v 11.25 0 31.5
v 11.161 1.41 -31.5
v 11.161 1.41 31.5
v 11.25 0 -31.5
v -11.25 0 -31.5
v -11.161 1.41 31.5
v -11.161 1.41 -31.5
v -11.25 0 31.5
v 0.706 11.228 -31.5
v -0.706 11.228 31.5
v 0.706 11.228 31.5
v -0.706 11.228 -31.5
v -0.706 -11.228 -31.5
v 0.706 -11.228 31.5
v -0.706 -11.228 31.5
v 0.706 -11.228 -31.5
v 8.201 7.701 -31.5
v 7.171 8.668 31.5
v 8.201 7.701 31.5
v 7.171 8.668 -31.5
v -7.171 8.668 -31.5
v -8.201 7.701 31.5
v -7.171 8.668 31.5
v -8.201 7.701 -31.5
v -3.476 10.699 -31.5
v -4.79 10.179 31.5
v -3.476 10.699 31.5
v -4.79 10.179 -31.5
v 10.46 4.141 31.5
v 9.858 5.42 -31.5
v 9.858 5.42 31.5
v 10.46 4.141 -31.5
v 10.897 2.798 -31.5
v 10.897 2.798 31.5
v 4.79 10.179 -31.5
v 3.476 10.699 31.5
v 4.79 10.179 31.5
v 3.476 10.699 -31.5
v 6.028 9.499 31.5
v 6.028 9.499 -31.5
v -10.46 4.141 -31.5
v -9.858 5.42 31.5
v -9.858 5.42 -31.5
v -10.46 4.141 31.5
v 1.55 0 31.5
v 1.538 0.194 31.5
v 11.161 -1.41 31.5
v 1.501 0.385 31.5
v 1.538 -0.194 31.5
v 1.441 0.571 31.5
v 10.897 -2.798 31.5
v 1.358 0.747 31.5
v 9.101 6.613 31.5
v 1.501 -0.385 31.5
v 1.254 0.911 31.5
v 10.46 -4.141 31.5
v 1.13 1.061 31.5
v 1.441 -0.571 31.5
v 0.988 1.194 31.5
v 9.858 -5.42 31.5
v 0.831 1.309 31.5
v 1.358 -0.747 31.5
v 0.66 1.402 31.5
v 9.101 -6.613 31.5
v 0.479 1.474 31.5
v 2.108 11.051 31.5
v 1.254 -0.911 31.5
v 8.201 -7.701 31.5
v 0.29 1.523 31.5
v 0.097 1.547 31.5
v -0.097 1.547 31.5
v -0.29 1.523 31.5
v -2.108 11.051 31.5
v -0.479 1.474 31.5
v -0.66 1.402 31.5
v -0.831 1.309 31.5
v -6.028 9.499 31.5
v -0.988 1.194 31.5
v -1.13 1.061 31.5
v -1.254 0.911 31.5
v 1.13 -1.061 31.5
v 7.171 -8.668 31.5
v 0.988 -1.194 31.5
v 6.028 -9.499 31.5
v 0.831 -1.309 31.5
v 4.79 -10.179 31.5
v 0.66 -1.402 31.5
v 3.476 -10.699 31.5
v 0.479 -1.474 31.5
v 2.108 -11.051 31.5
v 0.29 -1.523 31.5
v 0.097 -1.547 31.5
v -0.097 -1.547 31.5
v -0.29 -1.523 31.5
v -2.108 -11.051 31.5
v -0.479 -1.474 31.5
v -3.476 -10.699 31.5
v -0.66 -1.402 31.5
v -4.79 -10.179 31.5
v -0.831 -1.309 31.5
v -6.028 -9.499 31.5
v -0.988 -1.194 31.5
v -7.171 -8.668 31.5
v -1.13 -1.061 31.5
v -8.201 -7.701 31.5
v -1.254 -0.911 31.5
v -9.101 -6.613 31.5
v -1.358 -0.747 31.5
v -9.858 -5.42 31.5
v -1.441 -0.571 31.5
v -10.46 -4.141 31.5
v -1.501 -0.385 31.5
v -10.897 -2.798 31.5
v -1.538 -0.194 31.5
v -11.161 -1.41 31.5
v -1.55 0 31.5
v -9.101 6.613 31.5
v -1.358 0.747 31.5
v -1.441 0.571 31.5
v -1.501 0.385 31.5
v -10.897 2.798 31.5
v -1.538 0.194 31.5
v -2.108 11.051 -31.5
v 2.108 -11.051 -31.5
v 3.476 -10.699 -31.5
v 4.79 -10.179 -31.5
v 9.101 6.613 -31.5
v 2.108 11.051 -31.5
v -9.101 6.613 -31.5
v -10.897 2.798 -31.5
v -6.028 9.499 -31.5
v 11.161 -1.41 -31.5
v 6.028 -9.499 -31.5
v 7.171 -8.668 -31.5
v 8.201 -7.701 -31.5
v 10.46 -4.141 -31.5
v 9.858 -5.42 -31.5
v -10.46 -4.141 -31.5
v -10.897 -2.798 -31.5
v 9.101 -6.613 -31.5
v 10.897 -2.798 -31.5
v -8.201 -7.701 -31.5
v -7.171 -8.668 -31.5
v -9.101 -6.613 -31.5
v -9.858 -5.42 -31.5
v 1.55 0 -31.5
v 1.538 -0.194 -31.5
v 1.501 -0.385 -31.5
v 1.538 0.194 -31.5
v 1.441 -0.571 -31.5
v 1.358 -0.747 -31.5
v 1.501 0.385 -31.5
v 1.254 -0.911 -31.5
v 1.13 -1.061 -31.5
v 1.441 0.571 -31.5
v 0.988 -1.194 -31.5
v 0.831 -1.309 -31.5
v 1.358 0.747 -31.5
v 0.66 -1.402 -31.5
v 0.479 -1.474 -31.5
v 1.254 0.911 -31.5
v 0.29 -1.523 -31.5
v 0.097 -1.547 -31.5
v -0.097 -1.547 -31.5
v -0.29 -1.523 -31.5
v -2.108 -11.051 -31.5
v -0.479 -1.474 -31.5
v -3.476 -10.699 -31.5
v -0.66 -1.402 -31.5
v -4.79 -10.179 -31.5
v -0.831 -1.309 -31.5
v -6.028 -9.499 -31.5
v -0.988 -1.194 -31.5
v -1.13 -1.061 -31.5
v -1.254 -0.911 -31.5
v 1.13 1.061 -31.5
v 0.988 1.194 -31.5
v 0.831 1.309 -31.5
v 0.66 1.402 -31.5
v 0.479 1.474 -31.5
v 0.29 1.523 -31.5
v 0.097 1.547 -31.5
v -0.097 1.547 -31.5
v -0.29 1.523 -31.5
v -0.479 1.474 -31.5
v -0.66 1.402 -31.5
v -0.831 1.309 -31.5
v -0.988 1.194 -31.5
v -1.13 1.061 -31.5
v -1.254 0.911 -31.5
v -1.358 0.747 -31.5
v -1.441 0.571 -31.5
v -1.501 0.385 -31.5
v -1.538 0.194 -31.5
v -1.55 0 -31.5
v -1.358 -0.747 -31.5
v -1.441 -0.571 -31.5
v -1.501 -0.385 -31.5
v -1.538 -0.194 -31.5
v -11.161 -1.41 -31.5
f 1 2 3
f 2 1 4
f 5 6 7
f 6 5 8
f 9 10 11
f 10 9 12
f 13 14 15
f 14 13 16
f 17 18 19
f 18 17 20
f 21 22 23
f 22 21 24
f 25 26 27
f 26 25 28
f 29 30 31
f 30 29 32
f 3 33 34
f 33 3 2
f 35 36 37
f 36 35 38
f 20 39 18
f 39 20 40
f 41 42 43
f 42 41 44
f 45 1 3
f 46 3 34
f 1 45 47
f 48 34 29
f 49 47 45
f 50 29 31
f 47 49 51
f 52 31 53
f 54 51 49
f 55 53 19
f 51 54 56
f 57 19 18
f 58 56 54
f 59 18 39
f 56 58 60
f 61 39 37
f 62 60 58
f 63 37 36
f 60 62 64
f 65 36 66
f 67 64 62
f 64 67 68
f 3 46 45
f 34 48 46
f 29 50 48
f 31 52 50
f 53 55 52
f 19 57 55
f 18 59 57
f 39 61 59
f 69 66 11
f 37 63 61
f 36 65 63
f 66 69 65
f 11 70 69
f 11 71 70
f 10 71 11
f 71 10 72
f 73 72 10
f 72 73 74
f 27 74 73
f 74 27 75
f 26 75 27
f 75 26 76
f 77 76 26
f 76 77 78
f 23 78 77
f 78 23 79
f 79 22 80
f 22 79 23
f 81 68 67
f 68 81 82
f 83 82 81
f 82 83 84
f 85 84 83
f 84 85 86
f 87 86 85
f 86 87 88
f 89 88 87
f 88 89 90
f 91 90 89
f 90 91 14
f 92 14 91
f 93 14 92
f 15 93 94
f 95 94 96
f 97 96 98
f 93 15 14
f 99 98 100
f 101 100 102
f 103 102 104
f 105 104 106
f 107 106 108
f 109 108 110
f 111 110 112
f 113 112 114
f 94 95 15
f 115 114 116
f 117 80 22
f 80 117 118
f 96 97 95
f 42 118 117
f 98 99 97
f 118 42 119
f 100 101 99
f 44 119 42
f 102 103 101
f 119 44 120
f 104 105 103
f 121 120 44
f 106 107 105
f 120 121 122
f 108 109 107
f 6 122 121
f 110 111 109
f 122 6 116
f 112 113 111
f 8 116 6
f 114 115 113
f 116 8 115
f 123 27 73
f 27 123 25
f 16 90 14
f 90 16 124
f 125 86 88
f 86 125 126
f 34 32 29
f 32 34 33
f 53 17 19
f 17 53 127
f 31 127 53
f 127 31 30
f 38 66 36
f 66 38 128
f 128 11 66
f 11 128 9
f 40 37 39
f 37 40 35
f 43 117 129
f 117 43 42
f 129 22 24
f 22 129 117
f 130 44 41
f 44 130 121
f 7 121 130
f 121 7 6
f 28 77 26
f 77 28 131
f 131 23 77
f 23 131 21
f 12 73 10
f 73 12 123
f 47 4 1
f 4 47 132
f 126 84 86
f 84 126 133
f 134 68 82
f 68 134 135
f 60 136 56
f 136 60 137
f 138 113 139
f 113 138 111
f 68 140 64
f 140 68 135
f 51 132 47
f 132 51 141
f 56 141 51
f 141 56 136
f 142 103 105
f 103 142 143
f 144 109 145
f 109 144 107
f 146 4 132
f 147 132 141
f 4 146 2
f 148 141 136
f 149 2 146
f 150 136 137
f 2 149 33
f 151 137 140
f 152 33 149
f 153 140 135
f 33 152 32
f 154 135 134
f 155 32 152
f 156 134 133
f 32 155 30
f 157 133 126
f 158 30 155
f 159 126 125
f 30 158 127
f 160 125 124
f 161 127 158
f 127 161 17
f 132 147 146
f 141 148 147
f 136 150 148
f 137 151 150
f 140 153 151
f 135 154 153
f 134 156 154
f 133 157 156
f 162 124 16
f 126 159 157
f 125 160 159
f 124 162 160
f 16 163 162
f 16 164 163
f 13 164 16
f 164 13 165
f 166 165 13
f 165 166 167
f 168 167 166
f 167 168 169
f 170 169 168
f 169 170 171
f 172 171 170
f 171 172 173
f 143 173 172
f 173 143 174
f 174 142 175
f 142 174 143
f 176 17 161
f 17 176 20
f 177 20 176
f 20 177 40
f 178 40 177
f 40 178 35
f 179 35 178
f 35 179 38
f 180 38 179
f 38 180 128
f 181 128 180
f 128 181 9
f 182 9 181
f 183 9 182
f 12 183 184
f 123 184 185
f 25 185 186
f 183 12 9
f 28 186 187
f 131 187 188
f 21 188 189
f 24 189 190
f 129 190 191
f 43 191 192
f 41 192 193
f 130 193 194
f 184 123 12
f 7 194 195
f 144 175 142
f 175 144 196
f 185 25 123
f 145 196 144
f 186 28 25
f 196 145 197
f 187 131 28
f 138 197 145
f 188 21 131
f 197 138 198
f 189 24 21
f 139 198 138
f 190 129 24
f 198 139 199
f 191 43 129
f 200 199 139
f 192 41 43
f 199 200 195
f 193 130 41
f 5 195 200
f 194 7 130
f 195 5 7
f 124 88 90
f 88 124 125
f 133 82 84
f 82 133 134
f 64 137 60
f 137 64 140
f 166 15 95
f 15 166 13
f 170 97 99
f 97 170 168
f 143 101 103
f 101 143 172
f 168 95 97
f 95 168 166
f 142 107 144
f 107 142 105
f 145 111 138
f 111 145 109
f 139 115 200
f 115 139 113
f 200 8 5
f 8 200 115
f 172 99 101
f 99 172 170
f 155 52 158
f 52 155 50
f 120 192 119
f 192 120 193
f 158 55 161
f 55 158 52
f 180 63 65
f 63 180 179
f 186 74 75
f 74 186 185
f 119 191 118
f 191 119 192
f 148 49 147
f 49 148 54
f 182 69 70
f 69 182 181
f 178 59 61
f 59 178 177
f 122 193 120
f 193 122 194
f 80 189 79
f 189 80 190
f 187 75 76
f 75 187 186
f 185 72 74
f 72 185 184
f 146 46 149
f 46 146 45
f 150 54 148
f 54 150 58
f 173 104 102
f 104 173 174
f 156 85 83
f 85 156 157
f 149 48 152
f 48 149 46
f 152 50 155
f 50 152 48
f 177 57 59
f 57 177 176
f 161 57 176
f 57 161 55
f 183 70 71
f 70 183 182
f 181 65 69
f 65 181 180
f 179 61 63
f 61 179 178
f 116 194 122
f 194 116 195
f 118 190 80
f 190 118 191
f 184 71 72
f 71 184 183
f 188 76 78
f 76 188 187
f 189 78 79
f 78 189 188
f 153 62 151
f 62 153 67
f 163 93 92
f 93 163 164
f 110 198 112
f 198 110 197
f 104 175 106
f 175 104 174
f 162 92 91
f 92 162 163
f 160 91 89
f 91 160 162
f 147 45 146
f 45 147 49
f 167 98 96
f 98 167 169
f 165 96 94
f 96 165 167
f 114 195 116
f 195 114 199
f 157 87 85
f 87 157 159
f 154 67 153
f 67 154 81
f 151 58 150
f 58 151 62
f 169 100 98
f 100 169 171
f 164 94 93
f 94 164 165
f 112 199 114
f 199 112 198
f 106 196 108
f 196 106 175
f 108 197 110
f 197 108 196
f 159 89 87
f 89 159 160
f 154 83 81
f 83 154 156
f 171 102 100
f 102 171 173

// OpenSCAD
$fn = 50;


difference() {
	union() {
		translate(v = [0, 0, -31.5000000000]) {
			cylinder(h = 63, r = 11.2500000000);
		}
	}
	union() {
		translate(v = [0, 0, -100.0000000000]) {
			cylinder(h = 200, r = 1.5500000000);
		}
	}
}
